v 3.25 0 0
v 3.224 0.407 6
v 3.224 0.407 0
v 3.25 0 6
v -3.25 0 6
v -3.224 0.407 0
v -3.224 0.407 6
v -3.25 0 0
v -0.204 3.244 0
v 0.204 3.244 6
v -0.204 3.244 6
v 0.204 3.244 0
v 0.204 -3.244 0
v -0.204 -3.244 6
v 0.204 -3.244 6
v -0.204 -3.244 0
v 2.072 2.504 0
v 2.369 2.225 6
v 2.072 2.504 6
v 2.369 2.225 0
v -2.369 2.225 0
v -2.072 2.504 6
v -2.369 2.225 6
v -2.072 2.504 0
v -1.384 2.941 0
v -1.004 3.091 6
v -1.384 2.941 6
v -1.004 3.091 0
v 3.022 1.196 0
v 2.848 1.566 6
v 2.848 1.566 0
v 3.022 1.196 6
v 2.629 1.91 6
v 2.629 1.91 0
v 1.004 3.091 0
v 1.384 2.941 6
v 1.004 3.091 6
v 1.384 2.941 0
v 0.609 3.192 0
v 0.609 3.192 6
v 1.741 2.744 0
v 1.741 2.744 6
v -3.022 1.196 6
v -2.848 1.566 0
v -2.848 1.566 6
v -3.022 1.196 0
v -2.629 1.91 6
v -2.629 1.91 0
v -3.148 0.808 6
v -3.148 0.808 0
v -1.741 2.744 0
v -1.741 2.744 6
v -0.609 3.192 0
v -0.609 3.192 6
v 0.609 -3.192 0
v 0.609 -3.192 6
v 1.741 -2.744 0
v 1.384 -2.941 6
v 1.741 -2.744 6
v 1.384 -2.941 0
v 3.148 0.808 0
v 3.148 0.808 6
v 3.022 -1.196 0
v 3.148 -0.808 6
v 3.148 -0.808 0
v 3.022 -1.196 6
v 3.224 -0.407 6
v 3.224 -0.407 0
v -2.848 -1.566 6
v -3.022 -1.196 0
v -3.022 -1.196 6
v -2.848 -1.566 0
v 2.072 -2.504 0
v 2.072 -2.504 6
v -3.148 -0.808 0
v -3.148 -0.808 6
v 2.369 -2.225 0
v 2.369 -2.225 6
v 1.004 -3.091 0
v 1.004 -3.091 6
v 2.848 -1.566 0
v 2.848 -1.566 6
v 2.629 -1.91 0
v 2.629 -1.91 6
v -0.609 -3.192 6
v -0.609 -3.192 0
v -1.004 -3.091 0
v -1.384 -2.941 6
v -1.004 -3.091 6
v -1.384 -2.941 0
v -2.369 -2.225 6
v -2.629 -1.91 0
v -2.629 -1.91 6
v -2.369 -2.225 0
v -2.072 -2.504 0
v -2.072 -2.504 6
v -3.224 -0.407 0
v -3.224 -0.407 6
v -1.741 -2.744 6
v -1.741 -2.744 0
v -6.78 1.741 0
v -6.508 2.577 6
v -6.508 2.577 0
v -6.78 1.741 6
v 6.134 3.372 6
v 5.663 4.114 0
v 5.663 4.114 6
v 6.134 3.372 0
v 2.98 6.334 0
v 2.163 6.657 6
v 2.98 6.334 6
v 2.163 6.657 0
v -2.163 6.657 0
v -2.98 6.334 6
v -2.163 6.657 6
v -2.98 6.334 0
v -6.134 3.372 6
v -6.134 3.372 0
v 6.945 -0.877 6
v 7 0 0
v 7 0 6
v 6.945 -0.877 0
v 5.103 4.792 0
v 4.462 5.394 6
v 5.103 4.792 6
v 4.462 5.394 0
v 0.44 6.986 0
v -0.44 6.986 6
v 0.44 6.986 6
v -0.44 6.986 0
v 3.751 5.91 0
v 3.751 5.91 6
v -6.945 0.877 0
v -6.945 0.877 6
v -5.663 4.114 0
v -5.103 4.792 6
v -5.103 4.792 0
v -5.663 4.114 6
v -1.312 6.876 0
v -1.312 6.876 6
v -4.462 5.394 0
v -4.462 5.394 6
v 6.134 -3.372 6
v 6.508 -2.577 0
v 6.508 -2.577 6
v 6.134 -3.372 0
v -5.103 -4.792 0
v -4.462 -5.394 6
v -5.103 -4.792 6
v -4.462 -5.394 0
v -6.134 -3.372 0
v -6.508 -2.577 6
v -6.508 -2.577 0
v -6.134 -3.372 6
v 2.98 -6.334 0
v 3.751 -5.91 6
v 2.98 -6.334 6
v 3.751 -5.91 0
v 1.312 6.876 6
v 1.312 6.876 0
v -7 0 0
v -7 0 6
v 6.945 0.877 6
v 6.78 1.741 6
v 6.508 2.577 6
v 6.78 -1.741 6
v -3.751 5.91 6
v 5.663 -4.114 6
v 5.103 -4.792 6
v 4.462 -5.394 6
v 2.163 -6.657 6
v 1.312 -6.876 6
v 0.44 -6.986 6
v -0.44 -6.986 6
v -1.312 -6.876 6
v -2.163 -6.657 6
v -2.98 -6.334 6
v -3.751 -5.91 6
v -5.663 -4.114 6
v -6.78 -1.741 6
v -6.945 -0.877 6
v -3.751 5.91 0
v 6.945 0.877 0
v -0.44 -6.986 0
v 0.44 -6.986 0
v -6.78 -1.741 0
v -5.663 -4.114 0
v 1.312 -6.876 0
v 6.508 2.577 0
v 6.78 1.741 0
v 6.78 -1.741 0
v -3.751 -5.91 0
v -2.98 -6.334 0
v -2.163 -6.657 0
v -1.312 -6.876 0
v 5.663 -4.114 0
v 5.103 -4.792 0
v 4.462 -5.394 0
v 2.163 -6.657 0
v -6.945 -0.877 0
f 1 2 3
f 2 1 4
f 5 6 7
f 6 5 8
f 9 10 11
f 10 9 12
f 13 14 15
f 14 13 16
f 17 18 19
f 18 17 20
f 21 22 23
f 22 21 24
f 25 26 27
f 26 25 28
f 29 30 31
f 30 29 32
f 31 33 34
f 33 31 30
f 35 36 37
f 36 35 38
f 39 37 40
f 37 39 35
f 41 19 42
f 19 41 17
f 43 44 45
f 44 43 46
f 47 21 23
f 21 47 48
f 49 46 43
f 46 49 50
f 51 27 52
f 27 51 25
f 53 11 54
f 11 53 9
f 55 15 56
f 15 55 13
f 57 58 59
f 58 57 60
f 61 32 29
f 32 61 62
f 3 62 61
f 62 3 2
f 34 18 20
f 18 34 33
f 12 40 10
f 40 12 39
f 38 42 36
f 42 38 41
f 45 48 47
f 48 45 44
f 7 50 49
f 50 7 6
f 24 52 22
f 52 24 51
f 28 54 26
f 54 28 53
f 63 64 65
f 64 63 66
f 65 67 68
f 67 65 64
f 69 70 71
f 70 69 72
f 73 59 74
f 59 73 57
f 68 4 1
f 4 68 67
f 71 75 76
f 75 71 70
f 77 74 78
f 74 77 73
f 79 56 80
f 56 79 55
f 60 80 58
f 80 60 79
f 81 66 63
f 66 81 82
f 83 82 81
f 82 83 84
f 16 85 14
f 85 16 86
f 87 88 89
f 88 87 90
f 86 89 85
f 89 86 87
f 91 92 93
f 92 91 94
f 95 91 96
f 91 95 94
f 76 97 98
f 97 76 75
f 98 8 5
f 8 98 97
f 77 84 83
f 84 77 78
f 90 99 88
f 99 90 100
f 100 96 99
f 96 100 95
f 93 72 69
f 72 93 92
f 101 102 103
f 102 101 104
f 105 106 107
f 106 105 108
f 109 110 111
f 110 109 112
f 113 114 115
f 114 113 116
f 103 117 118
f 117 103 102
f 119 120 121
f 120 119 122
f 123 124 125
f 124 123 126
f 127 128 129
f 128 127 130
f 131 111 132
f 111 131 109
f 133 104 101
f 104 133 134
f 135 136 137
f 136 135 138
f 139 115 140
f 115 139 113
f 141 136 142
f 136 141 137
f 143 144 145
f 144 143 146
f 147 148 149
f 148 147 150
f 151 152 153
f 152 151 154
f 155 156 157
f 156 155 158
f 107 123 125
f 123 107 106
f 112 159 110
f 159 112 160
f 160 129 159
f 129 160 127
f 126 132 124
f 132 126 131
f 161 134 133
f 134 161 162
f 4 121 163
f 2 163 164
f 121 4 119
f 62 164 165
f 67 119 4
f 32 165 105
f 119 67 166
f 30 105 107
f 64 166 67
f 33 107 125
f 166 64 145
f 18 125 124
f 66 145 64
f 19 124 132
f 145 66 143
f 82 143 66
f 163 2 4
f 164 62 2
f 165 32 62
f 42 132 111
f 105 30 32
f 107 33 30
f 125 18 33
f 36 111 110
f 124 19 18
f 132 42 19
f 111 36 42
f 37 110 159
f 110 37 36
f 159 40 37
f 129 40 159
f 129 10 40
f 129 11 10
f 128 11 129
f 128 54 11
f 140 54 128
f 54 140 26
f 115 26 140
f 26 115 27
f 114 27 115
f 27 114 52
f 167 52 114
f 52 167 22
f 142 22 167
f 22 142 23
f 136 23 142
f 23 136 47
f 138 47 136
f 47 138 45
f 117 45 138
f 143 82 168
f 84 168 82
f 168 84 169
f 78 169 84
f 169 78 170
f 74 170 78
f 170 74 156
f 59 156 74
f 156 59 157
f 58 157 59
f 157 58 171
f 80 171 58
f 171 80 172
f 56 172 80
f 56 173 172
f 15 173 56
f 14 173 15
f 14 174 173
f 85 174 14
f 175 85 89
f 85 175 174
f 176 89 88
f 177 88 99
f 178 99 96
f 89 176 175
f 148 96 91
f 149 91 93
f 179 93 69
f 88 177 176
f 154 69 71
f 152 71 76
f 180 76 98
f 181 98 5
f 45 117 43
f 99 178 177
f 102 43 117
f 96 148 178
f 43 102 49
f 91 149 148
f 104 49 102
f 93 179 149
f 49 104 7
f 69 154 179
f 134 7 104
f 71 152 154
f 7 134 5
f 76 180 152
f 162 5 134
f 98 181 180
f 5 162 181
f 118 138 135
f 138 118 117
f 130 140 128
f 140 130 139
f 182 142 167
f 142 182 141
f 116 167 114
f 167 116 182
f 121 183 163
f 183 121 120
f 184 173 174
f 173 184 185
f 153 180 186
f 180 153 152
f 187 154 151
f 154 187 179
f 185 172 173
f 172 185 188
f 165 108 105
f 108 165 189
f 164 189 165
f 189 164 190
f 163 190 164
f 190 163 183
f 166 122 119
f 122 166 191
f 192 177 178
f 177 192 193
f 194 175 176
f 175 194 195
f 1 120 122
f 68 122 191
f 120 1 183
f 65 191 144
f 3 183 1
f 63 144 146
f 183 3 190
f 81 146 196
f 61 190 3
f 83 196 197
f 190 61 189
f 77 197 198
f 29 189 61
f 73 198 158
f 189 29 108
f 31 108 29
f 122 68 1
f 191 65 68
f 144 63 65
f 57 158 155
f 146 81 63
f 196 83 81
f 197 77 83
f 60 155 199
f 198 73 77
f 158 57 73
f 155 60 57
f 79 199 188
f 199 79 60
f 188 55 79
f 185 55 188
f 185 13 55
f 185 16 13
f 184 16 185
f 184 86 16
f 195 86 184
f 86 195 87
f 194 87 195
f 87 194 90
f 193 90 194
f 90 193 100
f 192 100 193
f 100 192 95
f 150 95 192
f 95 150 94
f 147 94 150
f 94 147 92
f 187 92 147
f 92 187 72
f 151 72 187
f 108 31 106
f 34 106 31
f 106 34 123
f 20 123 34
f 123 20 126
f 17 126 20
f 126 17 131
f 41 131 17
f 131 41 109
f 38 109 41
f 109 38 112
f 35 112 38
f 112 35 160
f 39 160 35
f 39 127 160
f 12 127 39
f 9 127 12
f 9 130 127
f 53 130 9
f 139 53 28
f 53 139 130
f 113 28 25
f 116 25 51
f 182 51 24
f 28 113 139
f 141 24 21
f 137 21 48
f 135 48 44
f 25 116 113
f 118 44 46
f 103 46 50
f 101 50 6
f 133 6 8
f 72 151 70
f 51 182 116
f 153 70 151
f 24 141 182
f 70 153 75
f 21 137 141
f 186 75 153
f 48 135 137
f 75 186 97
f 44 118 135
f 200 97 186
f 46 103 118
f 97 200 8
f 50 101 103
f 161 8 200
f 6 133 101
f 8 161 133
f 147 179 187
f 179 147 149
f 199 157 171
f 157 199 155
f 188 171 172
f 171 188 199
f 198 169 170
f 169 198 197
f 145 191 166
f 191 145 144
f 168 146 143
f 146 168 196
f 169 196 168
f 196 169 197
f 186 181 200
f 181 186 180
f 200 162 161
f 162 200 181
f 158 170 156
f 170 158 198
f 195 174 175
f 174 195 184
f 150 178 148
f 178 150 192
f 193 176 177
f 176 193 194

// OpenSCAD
$fn = 50;


difference() {
	union() {
		cylinder(h = 6, r = 7.0000000000);
	}
	union() {
		translate(v = [0.0000000000, 0.0000000000, -100.0000000000]) {
			cylinder(h = 200, r = 3.2500000000);
		}
		translate(v = [0.0000000000, 0.0000000000, -100.0000000000]) {
			cylinder(h = 200, r = 3.2500000000);
		}
		translate(v = [0.0000000000, 0.0000000000, -100.0000000000]) {
			cylinder(h = 200, r = 3.2500000000);
		}
		translate(v = [0.0000000000, 0.0000000000, -100.0000000000]) {
			cylinder(h = 200, r = 3.2500000000);
		}
	}
}
